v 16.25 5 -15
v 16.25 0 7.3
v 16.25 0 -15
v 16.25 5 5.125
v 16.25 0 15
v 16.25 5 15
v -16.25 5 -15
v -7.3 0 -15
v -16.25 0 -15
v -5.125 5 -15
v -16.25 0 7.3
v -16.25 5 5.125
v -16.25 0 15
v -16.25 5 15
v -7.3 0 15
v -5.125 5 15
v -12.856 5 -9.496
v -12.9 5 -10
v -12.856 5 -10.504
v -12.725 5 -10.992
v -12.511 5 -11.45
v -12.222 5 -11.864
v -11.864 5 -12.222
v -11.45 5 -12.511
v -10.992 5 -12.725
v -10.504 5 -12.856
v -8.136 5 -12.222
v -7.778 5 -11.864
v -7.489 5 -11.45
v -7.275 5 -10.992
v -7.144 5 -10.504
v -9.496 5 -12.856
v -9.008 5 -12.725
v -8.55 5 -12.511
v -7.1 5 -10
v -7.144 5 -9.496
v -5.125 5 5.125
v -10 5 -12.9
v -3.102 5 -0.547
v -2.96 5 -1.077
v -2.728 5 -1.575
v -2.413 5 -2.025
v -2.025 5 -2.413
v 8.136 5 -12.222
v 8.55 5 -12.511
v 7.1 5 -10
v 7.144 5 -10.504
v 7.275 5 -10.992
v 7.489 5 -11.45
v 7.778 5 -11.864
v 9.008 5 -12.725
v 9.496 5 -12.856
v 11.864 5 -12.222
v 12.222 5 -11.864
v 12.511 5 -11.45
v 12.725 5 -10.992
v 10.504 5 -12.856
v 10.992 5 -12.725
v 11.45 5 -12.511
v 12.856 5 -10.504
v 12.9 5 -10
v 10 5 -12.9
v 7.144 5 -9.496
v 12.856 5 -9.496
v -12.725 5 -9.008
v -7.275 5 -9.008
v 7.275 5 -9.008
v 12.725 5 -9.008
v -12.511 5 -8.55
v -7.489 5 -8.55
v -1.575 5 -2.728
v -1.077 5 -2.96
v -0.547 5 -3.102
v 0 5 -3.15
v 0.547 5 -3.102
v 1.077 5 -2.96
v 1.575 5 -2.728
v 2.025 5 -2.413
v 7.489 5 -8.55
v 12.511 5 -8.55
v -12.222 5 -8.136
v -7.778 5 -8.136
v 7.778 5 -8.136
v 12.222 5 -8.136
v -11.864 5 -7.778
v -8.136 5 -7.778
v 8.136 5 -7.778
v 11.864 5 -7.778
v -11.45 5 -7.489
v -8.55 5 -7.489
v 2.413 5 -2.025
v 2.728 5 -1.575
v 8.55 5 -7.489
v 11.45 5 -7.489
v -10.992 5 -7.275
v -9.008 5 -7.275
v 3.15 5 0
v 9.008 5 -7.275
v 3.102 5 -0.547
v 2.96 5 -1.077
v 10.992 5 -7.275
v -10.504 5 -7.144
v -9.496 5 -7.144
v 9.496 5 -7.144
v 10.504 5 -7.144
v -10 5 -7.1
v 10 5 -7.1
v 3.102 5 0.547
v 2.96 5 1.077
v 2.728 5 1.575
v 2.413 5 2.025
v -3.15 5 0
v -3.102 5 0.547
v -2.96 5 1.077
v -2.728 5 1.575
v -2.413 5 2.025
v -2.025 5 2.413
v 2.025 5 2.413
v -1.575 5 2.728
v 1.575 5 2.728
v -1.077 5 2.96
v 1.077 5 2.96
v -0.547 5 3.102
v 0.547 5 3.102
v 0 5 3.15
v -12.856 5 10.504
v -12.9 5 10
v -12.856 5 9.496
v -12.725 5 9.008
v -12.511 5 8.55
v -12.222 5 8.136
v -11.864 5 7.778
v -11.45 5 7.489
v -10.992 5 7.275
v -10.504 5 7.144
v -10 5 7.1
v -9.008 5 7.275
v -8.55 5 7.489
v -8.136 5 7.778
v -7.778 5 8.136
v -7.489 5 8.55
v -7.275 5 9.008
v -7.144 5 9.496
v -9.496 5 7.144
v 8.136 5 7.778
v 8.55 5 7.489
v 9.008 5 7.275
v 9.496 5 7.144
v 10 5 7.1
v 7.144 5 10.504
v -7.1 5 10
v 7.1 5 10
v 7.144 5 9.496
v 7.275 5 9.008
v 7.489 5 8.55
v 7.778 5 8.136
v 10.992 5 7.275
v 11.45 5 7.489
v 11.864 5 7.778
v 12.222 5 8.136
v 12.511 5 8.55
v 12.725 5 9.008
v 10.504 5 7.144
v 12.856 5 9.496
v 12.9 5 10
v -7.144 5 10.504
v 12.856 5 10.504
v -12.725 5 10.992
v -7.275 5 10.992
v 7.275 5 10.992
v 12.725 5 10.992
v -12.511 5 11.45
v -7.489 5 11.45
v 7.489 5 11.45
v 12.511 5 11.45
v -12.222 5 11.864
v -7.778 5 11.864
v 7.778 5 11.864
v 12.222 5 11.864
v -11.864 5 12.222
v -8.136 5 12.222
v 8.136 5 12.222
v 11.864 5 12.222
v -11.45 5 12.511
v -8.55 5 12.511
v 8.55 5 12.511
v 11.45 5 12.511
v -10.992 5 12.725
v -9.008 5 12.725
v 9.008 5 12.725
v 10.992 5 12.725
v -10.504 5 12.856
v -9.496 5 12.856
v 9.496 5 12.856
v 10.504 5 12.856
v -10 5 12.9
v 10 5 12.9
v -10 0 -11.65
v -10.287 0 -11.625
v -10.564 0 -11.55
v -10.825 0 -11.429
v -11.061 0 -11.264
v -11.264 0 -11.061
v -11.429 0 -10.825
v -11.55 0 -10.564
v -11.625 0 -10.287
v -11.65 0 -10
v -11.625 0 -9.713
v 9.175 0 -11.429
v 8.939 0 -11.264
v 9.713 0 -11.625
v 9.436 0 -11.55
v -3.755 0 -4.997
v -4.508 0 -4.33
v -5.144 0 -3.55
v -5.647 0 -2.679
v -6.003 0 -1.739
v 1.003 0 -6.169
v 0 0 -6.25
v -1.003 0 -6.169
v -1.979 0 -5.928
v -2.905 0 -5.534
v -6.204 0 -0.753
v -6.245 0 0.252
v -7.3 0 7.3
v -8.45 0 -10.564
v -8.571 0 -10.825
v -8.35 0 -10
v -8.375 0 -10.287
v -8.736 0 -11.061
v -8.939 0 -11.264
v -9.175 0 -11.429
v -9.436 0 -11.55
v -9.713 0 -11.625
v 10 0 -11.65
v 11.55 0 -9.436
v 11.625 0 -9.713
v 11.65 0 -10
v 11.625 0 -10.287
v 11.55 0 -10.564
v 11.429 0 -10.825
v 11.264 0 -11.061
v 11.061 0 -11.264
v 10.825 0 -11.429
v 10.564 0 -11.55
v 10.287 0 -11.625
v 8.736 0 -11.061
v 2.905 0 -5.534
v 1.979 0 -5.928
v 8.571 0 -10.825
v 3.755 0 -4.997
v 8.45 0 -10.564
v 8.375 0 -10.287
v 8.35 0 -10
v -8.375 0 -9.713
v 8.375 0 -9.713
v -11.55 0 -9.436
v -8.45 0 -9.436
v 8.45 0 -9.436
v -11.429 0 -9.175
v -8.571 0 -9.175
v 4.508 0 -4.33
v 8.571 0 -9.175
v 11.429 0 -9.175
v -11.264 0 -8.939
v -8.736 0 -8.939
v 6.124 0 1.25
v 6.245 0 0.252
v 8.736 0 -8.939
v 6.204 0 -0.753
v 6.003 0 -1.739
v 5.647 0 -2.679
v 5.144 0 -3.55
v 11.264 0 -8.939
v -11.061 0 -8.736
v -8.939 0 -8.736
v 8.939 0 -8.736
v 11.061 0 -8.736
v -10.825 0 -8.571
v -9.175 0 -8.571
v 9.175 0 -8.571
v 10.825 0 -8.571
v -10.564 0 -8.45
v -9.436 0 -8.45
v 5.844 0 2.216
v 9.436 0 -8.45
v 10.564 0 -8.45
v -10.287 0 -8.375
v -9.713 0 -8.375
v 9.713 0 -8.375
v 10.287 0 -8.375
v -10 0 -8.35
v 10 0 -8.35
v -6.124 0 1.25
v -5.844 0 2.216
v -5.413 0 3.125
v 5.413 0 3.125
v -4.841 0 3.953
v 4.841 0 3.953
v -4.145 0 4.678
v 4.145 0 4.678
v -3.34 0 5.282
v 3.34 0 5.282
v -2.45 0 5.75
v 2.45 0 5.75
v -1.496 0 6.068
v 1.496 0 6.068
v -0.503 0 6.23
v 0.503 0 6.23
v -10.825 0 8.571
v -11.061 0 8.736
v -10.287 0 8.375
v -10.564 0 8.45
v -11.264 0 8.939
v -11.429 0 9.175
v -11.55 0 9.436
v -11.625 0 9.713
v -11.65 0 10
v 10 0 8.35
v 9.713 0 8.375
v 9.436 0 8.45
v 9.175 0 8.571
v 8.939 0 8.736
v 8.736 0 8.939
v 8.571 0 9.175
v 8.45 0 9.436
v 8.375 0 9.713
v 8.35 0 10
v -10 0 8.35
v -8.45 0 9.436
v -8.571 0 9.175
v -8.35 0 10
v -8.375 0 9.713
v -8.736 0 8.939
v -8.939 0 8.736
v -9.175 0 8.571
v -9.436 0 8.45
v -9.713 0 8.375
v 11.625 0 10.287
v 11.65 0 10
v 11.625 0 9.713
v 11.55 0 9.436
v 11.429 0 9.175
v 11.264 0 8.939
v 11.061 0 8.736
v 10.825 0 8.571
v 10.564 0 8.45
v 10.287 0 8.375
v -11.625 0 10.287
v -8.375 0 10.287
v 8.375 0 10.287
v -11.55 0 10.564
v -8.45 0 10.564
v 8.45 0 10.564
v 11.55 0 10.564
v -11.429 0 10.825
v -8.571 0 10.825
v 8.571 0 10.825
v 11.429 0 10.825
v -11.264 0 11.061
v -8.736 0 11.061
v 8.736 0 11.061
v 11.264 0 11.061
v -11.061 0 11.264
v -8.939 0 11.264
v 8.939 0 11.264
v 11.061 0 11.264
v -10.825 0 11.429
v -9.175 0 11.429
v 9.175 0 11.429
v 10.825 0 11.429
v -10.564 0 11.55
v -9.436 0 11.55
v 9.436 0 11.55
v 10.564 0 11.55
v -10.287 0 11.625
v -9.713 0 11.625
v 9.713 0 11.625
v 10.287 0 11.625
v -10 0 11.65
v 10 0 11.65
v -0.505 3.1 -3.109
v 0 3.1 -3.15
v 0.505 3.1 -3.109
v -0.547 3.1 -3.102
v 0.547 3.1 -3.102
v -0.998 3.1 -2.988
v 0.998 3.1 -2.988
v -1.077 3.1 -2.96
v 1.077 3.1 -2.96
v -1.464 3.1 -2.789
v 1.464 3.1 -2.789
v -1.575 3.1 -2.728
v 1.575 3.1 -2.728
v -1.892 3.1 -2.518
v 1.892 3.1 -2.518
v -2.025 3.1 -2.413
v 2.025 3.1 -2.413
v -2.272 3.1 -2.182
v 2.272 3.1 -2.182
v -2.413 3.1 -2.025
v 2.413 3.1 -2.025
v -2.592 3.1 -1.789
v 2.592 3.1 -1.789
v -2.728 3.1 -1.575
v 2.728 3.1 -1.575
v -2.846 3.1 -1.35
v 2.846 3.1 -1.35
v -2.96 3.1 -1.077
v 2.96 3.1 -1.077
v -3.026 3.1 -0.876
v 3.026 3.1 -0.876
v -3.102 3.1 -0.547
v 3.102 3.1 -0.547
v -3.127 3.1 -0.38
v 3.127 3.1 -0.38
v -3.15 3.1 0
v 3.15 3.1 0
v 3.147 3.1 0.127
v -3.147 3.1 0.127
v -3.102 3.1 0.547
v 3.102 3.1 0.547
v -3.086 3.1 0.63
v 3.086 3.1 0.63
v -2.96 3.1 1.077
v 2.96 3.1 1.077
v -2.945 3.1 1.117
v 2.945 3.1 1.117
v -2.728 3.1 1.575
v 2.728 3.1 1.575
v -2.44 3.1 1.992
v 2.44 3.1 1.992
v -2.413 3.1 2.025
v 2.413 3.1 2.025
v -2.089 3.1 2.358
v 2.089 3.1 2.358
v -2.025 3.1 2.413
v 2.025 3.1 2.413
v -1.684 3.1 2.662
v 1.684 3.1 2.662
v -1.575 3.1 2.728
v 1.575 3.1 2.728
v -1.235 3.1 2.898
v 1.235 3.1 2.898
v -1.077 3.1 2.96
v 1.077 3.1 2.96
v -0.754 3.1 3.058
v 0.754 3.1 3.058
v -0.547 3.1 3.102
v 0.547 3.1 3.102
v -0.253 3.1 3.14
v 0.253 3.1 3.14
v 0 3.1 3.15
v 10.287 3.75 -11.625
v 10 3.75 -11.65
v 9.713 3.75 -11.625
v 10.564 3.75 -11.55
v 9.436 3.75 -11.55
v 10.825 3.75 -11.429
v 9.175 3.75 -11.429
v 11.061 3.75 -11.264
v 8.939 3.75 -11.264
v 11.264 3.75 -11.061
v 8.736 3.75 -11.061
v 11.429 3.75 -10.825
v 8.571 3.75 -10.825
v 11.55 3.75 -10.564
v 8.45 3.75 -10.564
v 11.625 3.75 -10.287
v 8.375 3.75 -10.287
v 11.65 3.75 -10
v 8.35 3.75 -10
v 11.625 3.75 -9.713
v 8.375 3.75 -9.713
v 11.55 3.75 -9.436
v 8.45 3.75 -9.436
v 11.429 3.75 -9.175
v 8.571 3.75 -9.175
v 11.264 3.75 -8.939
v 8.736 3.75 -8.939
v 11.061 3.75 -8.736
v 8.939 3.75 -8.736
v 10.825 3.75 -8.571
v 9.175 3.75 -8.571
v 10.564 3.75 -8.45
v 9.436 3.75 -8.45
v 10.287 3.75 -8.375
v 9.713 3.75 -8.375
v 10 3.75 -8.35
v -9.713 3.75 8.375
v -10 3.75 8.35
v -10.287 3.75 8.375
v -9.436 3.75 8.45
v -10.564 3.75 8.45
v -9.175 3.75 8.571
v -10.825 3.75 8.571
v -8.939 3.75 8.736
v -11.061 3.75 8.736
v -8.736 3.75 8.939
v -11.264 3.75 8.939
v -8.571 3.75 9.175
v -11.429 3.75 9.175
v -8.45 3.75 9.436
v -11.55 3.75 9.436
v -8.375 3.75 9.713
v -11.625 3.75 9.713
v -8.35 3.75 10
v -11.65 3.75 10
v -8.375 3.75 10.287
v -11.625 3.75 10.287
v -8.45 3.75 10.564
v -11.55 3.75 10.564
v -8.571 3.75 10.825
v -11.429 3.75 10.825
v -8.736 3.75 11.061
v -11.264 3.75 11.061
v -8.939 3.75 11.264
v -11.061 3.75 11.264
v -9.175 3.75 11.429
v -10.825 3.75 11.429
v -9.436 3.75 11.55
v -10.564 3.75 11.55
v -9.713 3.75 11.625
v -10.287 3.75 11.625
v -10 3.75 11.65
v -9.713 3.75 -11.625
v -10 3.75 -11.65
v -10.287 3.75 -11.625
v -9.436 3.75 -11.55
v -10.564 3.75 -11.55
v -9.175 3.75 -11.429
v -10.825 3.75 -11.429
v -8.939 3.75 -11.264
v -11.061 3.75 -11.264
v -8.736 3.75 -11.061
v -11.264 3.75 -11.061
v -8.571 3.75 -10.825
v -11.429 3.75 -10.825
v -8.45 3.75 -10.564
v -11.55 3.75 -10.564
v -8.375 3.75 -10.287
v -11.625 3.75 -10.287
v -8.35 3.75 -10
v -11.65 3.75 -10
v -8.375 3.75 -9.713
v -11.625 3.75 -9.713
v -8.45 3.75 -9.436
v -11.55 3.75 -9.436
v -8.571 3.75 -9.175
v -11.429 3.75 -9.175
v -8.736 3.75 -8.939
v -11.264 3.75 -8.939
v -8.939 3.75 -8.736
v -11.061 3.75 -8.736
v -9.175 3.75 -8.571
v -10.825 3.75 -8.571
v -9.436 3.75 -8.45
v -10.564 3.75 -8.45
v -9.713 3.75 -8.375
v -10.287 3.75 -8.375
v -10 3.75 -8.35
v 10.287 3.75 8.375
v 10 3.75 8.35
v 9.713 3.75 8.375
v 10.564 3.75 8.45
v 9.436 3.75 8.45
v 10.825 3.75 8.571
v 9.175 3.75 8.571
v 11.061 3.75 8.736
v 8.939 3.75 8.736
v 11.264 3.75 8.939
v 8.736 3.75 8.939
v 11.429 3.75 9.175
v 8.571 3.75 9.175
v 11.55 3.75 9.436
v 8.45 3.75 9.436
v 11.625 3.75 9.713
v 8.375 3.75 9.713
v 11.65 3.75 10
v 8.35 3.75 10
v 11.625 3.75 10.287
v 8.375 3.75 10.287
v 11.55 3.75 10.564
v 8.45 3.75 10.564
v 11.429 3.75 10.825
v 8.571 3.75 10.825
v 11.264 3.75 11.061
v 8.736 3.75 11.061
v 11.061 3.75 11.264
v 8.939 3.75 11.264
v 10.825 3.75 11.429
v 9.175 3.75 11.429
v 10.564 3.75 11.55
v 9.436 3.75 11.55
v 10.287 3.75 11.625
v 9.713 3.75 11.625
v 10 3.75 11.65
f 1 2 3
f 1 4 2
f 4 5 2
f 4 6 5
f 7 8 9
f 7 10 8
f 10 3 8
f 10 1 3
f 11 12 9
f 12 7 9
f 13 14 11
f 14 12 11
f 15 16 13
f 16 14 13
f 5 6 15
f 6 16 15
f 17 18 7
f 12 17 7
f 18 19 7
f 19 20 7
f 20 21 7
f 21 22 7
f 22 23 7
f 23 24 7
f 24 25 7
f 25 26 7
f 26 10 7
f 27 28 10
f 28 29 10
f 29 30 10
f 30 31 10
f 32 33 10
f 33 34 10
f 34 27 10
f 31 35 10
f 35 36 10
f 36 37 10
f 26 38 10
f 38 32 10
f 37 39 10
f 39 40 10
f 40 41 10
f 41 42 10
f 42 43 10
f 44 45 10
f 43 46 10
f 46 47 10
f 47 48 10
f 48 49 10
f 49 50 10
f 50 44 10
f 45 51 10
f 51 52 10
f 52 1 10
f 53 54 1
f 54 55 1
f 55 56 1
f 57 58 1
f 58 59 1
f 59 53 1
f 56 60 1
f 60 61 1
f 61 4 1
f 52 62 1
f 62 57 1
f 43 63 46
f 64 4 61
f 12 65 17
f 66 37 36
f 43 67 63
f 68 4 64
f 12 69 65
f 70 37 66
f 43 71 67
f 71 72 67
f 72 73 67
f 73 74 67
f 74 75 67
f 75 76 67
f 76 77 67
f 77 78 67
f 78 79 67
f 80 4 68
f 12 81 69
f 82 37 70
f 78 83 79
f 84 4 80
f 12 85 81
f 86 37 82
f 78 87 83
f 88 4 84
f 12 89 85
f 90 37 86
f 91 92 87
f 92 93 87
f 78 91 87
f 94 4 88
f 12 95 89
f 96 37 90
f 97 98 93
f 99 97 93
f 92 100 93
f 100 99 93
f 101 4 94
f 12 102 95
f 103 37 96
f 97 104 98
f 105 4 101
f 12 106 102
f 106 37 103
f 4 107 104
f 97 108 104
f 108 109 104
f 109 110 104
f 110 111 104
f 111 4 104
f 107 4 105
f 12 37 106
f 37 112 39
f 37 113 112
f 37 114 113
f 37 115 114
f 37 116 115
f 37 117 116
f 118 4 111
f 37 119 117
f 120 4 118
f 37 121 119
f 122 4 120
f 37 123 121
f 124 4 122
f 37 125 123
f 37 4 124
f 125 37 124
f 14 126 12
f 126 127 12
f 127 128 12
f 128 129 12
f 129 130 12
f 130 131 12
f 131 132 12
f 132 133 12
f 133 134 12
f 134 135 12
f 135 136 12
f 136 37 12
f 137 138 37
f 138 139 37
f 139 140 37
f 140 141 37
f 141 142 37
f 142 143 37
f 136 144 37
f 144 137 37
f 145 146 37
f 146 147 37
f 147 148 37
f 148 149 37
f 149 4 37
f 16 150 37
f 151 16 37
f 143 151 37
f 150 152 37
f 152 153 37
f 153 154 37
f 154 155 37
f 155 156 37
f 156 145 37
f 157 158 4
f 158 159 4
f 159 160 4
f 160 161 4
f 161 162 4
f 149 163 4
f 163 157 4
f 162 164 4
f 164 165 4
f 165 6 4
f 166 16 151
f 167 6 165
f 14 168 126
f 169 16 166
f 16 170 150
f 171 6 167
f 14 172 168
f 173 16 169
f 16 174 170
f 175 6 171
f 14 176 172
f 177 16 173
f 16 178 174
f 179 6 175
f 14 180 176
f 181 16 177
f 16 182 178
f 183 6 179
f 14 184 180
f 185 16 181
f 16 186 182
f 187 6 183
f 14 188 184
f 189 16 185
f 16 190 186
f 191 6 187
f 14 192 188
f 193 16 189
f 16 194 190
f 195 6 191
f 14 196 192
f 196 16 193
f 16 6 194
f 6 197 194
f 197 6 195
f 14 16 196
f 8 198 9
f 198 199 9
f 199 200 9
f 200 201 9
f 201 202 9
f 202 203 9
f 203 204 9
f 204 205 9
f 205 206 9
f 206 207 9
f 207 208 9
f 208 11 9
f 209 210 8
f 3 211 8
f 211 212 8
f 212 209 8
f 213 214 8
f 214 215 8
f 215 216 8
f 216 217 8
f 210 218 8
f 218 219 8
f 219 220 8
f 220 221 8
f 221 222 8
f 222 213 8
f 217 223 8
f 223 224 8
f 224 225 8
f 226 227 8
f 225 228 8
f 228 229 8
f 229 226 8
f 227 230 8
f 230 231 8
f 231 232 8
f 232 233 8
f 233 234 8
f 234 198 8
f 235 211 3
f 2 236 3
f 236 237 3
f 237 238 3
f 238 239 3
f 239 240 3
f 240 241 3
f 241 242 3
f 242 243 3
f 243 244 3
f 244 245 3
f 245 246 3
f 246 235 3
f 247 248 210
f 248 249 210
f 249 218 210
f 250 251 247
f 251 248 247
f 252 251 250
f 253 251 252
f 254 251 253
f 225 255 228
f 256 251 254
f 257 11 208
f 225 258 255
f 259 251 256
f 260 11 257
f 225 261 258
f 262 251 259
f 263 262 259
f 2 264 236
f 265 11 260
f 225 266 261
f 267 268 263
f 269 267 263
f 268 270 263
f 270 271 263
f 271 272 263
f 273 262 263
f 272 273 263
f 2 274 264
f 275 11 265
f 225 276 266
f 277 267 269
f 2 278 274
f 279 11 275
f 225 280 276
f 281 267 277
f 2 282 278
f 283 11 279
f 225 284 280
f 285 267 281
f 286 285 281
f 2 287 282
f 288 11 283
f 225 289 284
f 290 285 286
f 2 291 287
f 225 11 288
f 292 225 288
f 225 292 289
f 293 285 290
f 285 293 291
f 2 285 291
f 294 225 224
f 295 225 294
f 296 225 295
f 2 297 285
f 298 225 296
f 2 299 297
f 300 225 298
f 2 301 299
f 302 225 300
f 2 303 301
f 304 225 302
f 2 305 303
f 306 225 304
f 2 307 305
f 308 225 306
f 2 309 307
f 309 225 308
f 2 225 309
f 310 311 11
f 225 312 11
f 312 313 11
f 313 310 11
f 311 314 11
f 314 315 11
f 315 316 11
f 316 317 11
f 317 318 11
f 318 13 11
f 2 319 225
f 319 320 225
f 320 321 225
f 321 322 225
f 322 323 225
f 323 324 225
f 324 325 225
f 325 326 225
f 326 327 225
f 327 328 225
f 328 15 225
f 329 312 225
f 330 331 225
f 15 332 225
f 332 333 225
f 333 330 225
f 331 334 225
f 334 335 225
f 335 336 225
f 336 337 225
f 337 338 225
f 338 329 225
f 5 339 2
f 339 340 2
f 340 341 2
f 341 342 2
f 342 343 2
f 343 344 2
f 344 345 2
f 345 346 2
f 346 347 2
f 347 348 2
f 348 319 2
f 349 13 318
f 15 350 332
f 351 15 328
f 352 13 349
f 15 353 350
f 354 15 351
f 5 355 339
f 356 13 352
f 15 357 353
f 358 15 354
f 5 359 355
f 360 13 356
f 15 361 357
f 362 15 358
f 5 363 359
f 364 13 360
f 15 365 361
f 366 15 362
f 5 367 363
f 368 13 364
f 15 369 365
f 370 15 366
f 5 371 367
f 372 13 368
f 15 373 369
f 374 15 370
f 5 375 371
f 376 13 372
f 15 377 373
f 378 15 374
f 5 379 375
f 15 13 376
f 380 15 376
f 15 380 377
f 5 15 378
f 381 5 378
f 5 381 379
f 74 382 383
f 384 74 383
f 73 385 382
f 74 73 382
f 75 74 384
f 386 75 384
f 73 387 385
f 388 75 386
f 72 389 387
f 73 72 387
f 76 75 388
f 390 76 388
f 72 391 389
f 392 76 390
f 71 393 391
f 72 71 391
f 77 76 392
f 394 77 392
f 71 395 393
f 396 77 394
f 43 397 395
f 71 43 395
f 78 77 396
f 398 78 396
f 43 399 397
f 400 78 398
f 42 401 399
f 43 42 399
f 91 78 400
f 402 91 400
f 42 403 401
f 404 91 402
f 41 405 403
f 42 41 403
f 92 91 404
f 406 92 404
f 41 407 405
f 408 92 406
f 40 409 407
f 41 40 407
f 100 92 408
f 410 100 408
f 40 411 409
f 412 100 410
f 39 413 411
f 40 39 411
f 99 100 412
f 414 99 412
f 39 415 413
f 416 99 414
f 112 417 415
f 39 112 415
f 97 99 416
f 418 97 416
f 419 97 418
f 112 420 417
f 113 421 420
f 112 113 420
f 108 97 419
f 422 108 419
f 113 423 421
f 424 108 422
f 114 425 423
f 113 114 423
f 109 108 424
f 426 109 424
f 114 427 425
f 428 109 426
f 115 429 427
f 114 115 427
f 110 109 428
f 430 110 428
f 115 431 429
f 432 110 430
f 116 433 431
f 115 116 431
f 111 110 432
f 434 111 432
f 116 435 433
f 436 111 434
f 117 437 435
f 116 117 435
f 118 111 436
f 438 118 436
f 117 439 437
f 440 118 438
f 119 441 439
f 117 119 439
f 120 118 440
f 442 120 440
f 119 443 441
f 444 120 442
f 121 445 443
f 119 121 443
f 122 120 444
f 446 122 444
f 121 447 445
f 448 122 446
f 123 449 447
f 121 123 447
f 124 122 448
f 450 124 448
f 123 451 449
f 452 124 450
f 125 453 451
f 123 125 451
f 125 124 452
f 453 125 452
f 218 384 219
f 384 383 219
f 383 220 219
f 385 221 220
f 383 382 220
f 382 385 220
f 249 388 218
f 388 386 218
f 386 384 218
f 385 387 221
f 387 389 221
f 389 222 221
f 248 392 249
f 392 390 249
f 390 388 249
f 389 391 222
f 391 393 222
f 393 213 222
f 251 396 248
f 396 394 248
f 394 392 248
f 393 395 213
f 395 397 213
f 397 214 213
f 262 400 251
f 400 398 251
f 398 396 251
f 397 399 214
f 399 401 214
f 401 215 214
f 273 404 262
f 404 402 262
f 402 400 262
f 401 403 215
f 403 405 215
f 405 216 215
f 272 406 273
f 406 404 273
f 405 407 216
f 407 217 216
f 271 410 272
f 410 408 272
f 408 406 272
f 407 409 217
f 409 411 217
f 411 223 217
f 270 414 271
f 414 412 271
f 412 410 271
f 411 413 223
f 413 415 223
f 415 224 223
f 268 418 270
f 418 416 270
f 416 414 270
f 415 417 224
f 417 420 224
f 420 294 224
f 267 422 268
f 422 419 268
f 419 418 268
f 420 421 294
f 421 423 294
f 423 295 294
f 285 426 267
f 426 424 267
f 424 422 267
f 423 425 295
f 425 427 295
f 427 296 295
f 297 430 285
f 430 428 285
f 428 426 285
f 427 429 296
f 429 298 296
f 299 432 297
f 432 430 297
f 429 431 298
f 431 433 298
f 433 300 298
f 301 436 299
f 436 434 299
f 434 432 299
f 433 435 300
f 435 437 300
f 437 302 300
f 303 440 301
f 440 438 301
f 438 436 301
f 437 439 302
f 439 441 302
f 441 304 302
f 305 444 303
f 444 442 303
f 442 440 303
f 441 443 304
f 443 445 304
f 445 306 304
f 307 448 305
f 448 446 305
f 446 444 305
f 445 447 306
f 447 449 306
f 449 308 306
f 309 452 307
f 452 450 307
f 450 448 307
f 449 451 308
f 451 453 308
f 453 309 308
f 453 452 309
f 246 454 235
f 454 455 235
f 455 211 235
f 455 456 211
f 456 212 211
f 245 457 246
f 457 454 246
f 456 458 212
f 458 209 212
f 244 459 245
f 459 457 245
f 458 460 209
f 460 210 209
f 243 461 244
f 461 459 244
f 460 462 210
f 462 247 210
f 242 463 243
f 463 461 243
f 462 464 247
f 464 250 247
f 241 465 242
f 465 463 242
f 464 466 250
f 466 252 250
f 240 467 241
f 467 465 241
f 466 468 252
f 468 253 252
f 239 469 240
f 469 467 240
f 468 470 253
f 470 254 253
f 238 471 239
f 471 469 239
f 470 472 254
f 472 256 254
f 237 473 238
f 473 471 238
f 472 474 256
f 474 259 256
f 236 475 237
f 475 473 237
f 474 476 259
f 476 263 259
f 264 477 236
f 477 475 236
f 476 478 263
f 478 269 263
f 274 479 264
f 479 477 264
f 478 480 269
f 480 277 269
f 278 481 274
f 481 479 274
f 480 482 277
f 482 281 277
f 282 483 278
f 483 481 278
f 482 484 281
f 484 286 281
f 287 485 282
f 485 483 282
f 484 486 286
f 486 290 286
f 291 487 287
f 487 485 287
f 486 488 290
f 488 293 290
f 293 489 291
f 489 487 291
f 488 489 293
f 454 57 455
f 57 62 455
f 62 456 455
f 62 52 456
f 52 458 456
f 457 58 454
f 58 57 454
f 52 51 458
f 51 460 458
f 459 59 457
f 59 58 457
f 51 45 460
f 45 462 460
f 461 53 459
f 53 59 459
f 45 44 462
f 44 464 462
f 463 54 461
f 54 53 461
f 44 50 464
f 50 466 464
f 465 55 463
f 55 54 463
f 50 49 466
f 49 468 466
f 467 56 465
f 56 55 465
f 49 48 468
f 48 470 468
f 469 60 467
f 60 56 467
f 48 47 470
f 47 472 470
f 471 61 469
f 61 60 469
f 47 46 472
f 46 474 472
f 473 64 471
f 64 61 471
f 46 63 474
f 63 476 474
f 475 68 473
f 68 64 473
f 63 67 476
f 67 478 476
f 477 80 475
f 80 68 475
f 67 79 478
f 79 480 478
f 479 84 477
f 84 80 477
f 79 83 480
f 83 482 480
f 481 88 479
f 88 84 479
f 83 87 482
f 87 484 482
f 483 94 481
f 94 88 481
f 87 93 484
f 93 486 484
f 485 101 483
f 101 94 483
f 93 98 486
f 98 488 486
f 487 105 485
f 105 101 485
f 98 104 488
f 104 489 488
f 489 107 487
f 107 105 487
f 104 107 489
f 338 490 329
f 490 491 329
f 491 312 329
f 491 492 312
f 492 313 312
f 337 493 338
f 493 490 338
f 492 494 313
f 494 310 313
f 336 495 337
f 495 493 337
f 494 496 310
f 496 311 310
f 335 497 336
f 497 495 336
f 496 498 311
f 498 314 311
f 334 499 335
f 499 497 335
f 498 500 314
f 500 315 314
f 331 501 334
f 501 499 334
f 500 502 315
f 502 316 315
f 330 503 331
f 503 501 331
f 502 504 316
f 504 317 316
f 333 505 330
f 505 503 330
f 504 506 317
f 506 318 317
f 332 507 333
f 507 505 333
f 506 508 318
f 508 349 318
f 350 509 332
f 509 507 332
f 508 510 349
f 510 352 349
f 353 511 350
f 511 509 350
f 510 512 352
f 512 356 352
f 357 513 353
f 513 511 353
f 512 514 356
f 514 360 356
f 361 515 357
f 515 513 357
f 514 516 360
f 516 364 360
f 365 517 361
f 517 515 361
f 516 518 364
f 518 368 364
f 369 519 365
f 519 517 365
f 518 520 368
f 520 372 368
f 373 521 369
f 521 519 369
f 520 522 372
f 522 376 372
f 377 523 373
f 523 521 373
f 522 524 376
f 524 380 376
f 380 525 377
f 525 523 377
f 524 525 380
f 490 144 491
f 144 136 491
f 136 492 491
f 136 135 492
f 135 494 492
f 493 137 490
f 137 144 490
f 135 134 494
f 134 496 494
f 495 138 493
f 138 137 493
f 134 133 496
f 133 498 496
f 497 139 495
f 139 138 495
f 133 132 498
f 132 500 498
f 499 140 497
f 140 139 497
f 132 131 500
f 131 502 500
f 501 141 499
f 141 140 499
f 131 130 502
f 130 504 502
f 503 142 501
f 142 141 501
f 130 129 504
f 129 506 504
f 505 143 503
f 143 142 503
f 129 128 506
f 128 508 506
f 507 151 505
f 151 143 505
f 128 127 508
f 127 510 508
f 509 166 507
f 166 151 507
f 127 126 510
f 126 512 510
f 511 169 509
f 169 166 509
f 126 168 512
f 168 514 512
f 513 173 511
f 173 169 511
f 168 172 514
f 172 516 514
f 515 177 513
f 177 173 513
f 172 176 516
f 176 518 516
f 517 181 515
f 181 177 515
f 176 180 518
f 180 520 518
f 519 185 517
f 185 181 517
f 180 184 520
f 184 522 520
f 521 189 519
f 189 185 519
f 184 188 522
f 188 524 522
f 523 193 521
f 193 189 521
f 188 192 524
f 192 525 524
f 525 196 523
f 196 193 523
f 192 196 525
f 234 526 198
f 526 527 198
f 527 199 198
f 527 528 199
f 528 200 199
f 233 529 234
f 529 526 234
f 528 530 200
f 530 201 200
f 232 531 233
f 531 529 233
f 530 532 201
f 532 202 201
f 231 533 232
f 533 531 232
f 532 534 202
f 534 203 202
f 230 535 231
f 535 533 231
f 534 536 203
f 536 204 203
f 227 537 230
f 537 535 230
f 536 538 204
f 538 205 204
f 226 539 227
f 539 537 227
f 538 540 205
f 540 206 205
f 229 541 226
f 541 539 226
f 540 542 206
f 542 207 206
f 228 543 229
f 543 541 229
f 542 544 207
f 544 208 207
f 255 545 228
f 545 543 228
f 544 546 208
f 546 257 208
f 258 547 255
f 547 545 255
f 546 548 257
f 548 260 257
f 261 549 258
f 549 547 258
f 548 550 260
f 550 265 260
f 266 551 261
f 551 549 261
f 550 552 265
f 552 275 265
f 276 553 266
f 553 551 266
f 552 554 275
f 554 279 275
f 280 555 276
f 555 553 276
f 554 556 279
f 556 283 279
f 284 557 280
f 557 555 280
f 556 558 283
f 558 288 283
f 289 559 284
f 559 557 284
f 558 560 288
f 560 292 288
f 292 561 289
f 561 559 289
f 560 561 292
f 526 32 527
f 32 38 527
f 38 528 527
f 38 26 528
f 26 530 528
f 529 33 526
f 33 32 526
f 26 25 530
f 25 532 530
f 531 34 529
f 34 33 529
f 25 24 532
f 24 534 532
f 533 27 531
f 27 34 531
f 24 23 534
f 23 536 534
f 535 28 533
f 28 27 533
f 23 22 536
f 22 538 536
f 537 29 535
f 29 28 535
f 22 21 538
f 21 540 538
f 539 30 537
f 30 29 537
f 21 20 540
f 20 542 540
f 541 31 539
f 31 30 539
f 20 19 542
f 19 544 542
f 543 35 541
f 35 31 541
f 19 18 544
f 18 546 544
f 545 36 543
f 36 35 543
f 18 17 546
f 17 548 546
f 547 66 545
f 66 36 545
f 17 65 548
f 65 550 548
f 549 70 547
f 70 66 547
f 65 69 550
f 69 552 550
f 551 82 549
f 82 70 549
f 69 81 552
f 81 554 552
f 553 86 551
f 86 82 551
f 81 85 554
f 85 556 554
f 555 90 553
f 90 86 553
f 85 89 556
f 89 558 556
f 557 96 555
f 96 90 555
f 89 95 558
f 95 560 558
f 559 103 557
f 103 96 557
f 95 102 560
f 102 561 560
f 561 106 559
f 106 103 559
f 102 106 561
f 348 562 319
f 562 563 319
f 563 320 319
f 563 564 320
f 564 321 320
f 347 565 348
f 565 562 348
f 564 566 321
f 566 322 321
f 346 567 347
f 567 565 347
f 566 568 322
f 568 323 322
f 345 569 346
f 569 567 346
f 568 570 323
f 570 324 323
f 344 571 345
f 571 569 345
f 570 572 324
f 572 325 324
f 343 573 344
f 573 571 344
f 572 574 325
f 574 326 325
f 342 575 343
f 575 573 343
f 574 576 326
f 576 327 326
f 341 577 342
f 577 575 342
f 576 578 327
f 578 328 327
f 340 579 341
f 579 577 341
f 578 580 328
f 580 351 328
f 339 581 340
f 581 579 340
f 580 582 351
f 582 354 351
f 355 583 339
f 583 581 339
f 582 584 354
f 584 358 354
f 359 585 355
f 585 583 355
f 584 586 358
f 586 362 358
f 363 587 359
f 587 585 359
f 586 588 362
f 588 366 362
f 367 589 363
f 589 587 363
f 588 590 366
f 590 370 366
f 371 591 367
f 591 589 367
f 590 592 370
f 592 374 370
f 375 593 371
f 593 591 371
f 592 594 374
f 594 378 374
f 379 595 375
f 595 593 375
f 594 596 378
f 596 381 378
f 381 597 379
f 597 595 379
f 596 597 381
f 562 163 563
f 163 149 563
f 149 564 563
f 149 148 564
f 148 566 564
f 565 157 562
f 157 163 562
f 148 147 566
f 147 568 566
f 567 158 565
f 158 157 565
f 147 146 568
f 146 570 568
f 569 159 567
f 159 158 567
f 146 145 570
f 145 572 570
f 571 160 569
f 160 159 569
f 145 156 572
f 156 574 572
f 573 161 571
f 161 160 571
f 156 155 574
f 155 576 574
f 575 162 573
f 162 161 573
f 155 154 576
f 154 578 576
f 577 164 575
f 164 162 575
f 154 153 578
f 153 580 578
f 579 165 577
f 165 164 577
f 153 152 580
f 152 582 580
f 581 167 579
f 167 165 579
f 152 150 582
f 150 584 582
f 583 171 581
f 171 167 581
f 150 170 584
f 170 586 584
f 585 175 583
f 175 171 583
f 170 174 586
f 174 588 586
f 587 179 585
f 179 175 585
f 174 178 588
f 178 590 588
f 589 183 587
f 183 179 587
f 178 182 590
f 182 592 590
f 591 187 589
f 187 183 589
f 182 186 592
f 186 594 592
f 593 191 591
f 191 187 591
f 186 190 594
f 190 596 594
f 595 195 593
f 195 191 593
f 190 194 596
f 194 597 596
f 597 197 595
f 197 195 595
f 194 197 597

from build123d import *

# Parameters (mm, degrees)
SKETCH1_W                                           = 32.5
SKETCH1_H                                           = 30
BOSS_EXTRUDE1_DEPTH                                 = 5
CSK_FOR_M3_COUNTERSUNK_FLAT_HEAD_SCREW1_D           = 3.3
CSK_FOR_M3_COUNTERSUNK_FLAT_HEAD_SCREW1_CSINK_D     = 5.8
CSK_FOR_M3_COUNTERSUNK_FLAT_HEAD_SCREW1_CSINK_ANGLE = 90


with BuildPart() as part:
    # Sketch1 → Boss-Extrude1 (new body)
    with BuildSketch(Plane(origin=(0, 0, 0), x_dir=(1, 0, 0), z_dir=(0, 1, 0))):
        Rectangle(SKETCH1_W, SKETCH1_H)
    extrude(amount=BOSS_EXTRUDE1_DEPTH)

    # Sketch3 → CSK for M6 Hex Socket Countersunk Cap Screw1 (revolve, cut)
    with BuildSketch(Plane(origin=(0, 0, 0), x_dir=(0, 0, -1), z_dir=(1, 0, 0))):
        Polygon((0, 0), (0, 5), (3.15, 5), (3.15, 3.1), (6.25, 0), align=None)
    revolve(axis=Axis((0, -6.35, 0), (0, 1, 0)), mode=Mode.SUBTRACT)

    # CSK for M3 Countersunk Flat Head Screw1 (through all)
    with Locations(Plane(origin=(0, 5, 0), x_dir=(1, 0, 0), z_dir=(0, 1, 0))):
        with Locations((0, 0), (10, -10), (-10, 10), (-10, -10), (10, 10)):
            CounterSinkHole(CSK_FOR_M3_COUNTERSUNK_FLAT_HEAD_SCREW1_D / 2, CSK_FOR_M3_COUNTERSUNK_FLAT_HEAD_SCREW1_CSINK_D / 2, counter_sink_angle=CSK_FOR_M3_COUNTERSUNK_FLAT_HEAD_SCREW1_CSINK_ANGLE)


solid = part.part
